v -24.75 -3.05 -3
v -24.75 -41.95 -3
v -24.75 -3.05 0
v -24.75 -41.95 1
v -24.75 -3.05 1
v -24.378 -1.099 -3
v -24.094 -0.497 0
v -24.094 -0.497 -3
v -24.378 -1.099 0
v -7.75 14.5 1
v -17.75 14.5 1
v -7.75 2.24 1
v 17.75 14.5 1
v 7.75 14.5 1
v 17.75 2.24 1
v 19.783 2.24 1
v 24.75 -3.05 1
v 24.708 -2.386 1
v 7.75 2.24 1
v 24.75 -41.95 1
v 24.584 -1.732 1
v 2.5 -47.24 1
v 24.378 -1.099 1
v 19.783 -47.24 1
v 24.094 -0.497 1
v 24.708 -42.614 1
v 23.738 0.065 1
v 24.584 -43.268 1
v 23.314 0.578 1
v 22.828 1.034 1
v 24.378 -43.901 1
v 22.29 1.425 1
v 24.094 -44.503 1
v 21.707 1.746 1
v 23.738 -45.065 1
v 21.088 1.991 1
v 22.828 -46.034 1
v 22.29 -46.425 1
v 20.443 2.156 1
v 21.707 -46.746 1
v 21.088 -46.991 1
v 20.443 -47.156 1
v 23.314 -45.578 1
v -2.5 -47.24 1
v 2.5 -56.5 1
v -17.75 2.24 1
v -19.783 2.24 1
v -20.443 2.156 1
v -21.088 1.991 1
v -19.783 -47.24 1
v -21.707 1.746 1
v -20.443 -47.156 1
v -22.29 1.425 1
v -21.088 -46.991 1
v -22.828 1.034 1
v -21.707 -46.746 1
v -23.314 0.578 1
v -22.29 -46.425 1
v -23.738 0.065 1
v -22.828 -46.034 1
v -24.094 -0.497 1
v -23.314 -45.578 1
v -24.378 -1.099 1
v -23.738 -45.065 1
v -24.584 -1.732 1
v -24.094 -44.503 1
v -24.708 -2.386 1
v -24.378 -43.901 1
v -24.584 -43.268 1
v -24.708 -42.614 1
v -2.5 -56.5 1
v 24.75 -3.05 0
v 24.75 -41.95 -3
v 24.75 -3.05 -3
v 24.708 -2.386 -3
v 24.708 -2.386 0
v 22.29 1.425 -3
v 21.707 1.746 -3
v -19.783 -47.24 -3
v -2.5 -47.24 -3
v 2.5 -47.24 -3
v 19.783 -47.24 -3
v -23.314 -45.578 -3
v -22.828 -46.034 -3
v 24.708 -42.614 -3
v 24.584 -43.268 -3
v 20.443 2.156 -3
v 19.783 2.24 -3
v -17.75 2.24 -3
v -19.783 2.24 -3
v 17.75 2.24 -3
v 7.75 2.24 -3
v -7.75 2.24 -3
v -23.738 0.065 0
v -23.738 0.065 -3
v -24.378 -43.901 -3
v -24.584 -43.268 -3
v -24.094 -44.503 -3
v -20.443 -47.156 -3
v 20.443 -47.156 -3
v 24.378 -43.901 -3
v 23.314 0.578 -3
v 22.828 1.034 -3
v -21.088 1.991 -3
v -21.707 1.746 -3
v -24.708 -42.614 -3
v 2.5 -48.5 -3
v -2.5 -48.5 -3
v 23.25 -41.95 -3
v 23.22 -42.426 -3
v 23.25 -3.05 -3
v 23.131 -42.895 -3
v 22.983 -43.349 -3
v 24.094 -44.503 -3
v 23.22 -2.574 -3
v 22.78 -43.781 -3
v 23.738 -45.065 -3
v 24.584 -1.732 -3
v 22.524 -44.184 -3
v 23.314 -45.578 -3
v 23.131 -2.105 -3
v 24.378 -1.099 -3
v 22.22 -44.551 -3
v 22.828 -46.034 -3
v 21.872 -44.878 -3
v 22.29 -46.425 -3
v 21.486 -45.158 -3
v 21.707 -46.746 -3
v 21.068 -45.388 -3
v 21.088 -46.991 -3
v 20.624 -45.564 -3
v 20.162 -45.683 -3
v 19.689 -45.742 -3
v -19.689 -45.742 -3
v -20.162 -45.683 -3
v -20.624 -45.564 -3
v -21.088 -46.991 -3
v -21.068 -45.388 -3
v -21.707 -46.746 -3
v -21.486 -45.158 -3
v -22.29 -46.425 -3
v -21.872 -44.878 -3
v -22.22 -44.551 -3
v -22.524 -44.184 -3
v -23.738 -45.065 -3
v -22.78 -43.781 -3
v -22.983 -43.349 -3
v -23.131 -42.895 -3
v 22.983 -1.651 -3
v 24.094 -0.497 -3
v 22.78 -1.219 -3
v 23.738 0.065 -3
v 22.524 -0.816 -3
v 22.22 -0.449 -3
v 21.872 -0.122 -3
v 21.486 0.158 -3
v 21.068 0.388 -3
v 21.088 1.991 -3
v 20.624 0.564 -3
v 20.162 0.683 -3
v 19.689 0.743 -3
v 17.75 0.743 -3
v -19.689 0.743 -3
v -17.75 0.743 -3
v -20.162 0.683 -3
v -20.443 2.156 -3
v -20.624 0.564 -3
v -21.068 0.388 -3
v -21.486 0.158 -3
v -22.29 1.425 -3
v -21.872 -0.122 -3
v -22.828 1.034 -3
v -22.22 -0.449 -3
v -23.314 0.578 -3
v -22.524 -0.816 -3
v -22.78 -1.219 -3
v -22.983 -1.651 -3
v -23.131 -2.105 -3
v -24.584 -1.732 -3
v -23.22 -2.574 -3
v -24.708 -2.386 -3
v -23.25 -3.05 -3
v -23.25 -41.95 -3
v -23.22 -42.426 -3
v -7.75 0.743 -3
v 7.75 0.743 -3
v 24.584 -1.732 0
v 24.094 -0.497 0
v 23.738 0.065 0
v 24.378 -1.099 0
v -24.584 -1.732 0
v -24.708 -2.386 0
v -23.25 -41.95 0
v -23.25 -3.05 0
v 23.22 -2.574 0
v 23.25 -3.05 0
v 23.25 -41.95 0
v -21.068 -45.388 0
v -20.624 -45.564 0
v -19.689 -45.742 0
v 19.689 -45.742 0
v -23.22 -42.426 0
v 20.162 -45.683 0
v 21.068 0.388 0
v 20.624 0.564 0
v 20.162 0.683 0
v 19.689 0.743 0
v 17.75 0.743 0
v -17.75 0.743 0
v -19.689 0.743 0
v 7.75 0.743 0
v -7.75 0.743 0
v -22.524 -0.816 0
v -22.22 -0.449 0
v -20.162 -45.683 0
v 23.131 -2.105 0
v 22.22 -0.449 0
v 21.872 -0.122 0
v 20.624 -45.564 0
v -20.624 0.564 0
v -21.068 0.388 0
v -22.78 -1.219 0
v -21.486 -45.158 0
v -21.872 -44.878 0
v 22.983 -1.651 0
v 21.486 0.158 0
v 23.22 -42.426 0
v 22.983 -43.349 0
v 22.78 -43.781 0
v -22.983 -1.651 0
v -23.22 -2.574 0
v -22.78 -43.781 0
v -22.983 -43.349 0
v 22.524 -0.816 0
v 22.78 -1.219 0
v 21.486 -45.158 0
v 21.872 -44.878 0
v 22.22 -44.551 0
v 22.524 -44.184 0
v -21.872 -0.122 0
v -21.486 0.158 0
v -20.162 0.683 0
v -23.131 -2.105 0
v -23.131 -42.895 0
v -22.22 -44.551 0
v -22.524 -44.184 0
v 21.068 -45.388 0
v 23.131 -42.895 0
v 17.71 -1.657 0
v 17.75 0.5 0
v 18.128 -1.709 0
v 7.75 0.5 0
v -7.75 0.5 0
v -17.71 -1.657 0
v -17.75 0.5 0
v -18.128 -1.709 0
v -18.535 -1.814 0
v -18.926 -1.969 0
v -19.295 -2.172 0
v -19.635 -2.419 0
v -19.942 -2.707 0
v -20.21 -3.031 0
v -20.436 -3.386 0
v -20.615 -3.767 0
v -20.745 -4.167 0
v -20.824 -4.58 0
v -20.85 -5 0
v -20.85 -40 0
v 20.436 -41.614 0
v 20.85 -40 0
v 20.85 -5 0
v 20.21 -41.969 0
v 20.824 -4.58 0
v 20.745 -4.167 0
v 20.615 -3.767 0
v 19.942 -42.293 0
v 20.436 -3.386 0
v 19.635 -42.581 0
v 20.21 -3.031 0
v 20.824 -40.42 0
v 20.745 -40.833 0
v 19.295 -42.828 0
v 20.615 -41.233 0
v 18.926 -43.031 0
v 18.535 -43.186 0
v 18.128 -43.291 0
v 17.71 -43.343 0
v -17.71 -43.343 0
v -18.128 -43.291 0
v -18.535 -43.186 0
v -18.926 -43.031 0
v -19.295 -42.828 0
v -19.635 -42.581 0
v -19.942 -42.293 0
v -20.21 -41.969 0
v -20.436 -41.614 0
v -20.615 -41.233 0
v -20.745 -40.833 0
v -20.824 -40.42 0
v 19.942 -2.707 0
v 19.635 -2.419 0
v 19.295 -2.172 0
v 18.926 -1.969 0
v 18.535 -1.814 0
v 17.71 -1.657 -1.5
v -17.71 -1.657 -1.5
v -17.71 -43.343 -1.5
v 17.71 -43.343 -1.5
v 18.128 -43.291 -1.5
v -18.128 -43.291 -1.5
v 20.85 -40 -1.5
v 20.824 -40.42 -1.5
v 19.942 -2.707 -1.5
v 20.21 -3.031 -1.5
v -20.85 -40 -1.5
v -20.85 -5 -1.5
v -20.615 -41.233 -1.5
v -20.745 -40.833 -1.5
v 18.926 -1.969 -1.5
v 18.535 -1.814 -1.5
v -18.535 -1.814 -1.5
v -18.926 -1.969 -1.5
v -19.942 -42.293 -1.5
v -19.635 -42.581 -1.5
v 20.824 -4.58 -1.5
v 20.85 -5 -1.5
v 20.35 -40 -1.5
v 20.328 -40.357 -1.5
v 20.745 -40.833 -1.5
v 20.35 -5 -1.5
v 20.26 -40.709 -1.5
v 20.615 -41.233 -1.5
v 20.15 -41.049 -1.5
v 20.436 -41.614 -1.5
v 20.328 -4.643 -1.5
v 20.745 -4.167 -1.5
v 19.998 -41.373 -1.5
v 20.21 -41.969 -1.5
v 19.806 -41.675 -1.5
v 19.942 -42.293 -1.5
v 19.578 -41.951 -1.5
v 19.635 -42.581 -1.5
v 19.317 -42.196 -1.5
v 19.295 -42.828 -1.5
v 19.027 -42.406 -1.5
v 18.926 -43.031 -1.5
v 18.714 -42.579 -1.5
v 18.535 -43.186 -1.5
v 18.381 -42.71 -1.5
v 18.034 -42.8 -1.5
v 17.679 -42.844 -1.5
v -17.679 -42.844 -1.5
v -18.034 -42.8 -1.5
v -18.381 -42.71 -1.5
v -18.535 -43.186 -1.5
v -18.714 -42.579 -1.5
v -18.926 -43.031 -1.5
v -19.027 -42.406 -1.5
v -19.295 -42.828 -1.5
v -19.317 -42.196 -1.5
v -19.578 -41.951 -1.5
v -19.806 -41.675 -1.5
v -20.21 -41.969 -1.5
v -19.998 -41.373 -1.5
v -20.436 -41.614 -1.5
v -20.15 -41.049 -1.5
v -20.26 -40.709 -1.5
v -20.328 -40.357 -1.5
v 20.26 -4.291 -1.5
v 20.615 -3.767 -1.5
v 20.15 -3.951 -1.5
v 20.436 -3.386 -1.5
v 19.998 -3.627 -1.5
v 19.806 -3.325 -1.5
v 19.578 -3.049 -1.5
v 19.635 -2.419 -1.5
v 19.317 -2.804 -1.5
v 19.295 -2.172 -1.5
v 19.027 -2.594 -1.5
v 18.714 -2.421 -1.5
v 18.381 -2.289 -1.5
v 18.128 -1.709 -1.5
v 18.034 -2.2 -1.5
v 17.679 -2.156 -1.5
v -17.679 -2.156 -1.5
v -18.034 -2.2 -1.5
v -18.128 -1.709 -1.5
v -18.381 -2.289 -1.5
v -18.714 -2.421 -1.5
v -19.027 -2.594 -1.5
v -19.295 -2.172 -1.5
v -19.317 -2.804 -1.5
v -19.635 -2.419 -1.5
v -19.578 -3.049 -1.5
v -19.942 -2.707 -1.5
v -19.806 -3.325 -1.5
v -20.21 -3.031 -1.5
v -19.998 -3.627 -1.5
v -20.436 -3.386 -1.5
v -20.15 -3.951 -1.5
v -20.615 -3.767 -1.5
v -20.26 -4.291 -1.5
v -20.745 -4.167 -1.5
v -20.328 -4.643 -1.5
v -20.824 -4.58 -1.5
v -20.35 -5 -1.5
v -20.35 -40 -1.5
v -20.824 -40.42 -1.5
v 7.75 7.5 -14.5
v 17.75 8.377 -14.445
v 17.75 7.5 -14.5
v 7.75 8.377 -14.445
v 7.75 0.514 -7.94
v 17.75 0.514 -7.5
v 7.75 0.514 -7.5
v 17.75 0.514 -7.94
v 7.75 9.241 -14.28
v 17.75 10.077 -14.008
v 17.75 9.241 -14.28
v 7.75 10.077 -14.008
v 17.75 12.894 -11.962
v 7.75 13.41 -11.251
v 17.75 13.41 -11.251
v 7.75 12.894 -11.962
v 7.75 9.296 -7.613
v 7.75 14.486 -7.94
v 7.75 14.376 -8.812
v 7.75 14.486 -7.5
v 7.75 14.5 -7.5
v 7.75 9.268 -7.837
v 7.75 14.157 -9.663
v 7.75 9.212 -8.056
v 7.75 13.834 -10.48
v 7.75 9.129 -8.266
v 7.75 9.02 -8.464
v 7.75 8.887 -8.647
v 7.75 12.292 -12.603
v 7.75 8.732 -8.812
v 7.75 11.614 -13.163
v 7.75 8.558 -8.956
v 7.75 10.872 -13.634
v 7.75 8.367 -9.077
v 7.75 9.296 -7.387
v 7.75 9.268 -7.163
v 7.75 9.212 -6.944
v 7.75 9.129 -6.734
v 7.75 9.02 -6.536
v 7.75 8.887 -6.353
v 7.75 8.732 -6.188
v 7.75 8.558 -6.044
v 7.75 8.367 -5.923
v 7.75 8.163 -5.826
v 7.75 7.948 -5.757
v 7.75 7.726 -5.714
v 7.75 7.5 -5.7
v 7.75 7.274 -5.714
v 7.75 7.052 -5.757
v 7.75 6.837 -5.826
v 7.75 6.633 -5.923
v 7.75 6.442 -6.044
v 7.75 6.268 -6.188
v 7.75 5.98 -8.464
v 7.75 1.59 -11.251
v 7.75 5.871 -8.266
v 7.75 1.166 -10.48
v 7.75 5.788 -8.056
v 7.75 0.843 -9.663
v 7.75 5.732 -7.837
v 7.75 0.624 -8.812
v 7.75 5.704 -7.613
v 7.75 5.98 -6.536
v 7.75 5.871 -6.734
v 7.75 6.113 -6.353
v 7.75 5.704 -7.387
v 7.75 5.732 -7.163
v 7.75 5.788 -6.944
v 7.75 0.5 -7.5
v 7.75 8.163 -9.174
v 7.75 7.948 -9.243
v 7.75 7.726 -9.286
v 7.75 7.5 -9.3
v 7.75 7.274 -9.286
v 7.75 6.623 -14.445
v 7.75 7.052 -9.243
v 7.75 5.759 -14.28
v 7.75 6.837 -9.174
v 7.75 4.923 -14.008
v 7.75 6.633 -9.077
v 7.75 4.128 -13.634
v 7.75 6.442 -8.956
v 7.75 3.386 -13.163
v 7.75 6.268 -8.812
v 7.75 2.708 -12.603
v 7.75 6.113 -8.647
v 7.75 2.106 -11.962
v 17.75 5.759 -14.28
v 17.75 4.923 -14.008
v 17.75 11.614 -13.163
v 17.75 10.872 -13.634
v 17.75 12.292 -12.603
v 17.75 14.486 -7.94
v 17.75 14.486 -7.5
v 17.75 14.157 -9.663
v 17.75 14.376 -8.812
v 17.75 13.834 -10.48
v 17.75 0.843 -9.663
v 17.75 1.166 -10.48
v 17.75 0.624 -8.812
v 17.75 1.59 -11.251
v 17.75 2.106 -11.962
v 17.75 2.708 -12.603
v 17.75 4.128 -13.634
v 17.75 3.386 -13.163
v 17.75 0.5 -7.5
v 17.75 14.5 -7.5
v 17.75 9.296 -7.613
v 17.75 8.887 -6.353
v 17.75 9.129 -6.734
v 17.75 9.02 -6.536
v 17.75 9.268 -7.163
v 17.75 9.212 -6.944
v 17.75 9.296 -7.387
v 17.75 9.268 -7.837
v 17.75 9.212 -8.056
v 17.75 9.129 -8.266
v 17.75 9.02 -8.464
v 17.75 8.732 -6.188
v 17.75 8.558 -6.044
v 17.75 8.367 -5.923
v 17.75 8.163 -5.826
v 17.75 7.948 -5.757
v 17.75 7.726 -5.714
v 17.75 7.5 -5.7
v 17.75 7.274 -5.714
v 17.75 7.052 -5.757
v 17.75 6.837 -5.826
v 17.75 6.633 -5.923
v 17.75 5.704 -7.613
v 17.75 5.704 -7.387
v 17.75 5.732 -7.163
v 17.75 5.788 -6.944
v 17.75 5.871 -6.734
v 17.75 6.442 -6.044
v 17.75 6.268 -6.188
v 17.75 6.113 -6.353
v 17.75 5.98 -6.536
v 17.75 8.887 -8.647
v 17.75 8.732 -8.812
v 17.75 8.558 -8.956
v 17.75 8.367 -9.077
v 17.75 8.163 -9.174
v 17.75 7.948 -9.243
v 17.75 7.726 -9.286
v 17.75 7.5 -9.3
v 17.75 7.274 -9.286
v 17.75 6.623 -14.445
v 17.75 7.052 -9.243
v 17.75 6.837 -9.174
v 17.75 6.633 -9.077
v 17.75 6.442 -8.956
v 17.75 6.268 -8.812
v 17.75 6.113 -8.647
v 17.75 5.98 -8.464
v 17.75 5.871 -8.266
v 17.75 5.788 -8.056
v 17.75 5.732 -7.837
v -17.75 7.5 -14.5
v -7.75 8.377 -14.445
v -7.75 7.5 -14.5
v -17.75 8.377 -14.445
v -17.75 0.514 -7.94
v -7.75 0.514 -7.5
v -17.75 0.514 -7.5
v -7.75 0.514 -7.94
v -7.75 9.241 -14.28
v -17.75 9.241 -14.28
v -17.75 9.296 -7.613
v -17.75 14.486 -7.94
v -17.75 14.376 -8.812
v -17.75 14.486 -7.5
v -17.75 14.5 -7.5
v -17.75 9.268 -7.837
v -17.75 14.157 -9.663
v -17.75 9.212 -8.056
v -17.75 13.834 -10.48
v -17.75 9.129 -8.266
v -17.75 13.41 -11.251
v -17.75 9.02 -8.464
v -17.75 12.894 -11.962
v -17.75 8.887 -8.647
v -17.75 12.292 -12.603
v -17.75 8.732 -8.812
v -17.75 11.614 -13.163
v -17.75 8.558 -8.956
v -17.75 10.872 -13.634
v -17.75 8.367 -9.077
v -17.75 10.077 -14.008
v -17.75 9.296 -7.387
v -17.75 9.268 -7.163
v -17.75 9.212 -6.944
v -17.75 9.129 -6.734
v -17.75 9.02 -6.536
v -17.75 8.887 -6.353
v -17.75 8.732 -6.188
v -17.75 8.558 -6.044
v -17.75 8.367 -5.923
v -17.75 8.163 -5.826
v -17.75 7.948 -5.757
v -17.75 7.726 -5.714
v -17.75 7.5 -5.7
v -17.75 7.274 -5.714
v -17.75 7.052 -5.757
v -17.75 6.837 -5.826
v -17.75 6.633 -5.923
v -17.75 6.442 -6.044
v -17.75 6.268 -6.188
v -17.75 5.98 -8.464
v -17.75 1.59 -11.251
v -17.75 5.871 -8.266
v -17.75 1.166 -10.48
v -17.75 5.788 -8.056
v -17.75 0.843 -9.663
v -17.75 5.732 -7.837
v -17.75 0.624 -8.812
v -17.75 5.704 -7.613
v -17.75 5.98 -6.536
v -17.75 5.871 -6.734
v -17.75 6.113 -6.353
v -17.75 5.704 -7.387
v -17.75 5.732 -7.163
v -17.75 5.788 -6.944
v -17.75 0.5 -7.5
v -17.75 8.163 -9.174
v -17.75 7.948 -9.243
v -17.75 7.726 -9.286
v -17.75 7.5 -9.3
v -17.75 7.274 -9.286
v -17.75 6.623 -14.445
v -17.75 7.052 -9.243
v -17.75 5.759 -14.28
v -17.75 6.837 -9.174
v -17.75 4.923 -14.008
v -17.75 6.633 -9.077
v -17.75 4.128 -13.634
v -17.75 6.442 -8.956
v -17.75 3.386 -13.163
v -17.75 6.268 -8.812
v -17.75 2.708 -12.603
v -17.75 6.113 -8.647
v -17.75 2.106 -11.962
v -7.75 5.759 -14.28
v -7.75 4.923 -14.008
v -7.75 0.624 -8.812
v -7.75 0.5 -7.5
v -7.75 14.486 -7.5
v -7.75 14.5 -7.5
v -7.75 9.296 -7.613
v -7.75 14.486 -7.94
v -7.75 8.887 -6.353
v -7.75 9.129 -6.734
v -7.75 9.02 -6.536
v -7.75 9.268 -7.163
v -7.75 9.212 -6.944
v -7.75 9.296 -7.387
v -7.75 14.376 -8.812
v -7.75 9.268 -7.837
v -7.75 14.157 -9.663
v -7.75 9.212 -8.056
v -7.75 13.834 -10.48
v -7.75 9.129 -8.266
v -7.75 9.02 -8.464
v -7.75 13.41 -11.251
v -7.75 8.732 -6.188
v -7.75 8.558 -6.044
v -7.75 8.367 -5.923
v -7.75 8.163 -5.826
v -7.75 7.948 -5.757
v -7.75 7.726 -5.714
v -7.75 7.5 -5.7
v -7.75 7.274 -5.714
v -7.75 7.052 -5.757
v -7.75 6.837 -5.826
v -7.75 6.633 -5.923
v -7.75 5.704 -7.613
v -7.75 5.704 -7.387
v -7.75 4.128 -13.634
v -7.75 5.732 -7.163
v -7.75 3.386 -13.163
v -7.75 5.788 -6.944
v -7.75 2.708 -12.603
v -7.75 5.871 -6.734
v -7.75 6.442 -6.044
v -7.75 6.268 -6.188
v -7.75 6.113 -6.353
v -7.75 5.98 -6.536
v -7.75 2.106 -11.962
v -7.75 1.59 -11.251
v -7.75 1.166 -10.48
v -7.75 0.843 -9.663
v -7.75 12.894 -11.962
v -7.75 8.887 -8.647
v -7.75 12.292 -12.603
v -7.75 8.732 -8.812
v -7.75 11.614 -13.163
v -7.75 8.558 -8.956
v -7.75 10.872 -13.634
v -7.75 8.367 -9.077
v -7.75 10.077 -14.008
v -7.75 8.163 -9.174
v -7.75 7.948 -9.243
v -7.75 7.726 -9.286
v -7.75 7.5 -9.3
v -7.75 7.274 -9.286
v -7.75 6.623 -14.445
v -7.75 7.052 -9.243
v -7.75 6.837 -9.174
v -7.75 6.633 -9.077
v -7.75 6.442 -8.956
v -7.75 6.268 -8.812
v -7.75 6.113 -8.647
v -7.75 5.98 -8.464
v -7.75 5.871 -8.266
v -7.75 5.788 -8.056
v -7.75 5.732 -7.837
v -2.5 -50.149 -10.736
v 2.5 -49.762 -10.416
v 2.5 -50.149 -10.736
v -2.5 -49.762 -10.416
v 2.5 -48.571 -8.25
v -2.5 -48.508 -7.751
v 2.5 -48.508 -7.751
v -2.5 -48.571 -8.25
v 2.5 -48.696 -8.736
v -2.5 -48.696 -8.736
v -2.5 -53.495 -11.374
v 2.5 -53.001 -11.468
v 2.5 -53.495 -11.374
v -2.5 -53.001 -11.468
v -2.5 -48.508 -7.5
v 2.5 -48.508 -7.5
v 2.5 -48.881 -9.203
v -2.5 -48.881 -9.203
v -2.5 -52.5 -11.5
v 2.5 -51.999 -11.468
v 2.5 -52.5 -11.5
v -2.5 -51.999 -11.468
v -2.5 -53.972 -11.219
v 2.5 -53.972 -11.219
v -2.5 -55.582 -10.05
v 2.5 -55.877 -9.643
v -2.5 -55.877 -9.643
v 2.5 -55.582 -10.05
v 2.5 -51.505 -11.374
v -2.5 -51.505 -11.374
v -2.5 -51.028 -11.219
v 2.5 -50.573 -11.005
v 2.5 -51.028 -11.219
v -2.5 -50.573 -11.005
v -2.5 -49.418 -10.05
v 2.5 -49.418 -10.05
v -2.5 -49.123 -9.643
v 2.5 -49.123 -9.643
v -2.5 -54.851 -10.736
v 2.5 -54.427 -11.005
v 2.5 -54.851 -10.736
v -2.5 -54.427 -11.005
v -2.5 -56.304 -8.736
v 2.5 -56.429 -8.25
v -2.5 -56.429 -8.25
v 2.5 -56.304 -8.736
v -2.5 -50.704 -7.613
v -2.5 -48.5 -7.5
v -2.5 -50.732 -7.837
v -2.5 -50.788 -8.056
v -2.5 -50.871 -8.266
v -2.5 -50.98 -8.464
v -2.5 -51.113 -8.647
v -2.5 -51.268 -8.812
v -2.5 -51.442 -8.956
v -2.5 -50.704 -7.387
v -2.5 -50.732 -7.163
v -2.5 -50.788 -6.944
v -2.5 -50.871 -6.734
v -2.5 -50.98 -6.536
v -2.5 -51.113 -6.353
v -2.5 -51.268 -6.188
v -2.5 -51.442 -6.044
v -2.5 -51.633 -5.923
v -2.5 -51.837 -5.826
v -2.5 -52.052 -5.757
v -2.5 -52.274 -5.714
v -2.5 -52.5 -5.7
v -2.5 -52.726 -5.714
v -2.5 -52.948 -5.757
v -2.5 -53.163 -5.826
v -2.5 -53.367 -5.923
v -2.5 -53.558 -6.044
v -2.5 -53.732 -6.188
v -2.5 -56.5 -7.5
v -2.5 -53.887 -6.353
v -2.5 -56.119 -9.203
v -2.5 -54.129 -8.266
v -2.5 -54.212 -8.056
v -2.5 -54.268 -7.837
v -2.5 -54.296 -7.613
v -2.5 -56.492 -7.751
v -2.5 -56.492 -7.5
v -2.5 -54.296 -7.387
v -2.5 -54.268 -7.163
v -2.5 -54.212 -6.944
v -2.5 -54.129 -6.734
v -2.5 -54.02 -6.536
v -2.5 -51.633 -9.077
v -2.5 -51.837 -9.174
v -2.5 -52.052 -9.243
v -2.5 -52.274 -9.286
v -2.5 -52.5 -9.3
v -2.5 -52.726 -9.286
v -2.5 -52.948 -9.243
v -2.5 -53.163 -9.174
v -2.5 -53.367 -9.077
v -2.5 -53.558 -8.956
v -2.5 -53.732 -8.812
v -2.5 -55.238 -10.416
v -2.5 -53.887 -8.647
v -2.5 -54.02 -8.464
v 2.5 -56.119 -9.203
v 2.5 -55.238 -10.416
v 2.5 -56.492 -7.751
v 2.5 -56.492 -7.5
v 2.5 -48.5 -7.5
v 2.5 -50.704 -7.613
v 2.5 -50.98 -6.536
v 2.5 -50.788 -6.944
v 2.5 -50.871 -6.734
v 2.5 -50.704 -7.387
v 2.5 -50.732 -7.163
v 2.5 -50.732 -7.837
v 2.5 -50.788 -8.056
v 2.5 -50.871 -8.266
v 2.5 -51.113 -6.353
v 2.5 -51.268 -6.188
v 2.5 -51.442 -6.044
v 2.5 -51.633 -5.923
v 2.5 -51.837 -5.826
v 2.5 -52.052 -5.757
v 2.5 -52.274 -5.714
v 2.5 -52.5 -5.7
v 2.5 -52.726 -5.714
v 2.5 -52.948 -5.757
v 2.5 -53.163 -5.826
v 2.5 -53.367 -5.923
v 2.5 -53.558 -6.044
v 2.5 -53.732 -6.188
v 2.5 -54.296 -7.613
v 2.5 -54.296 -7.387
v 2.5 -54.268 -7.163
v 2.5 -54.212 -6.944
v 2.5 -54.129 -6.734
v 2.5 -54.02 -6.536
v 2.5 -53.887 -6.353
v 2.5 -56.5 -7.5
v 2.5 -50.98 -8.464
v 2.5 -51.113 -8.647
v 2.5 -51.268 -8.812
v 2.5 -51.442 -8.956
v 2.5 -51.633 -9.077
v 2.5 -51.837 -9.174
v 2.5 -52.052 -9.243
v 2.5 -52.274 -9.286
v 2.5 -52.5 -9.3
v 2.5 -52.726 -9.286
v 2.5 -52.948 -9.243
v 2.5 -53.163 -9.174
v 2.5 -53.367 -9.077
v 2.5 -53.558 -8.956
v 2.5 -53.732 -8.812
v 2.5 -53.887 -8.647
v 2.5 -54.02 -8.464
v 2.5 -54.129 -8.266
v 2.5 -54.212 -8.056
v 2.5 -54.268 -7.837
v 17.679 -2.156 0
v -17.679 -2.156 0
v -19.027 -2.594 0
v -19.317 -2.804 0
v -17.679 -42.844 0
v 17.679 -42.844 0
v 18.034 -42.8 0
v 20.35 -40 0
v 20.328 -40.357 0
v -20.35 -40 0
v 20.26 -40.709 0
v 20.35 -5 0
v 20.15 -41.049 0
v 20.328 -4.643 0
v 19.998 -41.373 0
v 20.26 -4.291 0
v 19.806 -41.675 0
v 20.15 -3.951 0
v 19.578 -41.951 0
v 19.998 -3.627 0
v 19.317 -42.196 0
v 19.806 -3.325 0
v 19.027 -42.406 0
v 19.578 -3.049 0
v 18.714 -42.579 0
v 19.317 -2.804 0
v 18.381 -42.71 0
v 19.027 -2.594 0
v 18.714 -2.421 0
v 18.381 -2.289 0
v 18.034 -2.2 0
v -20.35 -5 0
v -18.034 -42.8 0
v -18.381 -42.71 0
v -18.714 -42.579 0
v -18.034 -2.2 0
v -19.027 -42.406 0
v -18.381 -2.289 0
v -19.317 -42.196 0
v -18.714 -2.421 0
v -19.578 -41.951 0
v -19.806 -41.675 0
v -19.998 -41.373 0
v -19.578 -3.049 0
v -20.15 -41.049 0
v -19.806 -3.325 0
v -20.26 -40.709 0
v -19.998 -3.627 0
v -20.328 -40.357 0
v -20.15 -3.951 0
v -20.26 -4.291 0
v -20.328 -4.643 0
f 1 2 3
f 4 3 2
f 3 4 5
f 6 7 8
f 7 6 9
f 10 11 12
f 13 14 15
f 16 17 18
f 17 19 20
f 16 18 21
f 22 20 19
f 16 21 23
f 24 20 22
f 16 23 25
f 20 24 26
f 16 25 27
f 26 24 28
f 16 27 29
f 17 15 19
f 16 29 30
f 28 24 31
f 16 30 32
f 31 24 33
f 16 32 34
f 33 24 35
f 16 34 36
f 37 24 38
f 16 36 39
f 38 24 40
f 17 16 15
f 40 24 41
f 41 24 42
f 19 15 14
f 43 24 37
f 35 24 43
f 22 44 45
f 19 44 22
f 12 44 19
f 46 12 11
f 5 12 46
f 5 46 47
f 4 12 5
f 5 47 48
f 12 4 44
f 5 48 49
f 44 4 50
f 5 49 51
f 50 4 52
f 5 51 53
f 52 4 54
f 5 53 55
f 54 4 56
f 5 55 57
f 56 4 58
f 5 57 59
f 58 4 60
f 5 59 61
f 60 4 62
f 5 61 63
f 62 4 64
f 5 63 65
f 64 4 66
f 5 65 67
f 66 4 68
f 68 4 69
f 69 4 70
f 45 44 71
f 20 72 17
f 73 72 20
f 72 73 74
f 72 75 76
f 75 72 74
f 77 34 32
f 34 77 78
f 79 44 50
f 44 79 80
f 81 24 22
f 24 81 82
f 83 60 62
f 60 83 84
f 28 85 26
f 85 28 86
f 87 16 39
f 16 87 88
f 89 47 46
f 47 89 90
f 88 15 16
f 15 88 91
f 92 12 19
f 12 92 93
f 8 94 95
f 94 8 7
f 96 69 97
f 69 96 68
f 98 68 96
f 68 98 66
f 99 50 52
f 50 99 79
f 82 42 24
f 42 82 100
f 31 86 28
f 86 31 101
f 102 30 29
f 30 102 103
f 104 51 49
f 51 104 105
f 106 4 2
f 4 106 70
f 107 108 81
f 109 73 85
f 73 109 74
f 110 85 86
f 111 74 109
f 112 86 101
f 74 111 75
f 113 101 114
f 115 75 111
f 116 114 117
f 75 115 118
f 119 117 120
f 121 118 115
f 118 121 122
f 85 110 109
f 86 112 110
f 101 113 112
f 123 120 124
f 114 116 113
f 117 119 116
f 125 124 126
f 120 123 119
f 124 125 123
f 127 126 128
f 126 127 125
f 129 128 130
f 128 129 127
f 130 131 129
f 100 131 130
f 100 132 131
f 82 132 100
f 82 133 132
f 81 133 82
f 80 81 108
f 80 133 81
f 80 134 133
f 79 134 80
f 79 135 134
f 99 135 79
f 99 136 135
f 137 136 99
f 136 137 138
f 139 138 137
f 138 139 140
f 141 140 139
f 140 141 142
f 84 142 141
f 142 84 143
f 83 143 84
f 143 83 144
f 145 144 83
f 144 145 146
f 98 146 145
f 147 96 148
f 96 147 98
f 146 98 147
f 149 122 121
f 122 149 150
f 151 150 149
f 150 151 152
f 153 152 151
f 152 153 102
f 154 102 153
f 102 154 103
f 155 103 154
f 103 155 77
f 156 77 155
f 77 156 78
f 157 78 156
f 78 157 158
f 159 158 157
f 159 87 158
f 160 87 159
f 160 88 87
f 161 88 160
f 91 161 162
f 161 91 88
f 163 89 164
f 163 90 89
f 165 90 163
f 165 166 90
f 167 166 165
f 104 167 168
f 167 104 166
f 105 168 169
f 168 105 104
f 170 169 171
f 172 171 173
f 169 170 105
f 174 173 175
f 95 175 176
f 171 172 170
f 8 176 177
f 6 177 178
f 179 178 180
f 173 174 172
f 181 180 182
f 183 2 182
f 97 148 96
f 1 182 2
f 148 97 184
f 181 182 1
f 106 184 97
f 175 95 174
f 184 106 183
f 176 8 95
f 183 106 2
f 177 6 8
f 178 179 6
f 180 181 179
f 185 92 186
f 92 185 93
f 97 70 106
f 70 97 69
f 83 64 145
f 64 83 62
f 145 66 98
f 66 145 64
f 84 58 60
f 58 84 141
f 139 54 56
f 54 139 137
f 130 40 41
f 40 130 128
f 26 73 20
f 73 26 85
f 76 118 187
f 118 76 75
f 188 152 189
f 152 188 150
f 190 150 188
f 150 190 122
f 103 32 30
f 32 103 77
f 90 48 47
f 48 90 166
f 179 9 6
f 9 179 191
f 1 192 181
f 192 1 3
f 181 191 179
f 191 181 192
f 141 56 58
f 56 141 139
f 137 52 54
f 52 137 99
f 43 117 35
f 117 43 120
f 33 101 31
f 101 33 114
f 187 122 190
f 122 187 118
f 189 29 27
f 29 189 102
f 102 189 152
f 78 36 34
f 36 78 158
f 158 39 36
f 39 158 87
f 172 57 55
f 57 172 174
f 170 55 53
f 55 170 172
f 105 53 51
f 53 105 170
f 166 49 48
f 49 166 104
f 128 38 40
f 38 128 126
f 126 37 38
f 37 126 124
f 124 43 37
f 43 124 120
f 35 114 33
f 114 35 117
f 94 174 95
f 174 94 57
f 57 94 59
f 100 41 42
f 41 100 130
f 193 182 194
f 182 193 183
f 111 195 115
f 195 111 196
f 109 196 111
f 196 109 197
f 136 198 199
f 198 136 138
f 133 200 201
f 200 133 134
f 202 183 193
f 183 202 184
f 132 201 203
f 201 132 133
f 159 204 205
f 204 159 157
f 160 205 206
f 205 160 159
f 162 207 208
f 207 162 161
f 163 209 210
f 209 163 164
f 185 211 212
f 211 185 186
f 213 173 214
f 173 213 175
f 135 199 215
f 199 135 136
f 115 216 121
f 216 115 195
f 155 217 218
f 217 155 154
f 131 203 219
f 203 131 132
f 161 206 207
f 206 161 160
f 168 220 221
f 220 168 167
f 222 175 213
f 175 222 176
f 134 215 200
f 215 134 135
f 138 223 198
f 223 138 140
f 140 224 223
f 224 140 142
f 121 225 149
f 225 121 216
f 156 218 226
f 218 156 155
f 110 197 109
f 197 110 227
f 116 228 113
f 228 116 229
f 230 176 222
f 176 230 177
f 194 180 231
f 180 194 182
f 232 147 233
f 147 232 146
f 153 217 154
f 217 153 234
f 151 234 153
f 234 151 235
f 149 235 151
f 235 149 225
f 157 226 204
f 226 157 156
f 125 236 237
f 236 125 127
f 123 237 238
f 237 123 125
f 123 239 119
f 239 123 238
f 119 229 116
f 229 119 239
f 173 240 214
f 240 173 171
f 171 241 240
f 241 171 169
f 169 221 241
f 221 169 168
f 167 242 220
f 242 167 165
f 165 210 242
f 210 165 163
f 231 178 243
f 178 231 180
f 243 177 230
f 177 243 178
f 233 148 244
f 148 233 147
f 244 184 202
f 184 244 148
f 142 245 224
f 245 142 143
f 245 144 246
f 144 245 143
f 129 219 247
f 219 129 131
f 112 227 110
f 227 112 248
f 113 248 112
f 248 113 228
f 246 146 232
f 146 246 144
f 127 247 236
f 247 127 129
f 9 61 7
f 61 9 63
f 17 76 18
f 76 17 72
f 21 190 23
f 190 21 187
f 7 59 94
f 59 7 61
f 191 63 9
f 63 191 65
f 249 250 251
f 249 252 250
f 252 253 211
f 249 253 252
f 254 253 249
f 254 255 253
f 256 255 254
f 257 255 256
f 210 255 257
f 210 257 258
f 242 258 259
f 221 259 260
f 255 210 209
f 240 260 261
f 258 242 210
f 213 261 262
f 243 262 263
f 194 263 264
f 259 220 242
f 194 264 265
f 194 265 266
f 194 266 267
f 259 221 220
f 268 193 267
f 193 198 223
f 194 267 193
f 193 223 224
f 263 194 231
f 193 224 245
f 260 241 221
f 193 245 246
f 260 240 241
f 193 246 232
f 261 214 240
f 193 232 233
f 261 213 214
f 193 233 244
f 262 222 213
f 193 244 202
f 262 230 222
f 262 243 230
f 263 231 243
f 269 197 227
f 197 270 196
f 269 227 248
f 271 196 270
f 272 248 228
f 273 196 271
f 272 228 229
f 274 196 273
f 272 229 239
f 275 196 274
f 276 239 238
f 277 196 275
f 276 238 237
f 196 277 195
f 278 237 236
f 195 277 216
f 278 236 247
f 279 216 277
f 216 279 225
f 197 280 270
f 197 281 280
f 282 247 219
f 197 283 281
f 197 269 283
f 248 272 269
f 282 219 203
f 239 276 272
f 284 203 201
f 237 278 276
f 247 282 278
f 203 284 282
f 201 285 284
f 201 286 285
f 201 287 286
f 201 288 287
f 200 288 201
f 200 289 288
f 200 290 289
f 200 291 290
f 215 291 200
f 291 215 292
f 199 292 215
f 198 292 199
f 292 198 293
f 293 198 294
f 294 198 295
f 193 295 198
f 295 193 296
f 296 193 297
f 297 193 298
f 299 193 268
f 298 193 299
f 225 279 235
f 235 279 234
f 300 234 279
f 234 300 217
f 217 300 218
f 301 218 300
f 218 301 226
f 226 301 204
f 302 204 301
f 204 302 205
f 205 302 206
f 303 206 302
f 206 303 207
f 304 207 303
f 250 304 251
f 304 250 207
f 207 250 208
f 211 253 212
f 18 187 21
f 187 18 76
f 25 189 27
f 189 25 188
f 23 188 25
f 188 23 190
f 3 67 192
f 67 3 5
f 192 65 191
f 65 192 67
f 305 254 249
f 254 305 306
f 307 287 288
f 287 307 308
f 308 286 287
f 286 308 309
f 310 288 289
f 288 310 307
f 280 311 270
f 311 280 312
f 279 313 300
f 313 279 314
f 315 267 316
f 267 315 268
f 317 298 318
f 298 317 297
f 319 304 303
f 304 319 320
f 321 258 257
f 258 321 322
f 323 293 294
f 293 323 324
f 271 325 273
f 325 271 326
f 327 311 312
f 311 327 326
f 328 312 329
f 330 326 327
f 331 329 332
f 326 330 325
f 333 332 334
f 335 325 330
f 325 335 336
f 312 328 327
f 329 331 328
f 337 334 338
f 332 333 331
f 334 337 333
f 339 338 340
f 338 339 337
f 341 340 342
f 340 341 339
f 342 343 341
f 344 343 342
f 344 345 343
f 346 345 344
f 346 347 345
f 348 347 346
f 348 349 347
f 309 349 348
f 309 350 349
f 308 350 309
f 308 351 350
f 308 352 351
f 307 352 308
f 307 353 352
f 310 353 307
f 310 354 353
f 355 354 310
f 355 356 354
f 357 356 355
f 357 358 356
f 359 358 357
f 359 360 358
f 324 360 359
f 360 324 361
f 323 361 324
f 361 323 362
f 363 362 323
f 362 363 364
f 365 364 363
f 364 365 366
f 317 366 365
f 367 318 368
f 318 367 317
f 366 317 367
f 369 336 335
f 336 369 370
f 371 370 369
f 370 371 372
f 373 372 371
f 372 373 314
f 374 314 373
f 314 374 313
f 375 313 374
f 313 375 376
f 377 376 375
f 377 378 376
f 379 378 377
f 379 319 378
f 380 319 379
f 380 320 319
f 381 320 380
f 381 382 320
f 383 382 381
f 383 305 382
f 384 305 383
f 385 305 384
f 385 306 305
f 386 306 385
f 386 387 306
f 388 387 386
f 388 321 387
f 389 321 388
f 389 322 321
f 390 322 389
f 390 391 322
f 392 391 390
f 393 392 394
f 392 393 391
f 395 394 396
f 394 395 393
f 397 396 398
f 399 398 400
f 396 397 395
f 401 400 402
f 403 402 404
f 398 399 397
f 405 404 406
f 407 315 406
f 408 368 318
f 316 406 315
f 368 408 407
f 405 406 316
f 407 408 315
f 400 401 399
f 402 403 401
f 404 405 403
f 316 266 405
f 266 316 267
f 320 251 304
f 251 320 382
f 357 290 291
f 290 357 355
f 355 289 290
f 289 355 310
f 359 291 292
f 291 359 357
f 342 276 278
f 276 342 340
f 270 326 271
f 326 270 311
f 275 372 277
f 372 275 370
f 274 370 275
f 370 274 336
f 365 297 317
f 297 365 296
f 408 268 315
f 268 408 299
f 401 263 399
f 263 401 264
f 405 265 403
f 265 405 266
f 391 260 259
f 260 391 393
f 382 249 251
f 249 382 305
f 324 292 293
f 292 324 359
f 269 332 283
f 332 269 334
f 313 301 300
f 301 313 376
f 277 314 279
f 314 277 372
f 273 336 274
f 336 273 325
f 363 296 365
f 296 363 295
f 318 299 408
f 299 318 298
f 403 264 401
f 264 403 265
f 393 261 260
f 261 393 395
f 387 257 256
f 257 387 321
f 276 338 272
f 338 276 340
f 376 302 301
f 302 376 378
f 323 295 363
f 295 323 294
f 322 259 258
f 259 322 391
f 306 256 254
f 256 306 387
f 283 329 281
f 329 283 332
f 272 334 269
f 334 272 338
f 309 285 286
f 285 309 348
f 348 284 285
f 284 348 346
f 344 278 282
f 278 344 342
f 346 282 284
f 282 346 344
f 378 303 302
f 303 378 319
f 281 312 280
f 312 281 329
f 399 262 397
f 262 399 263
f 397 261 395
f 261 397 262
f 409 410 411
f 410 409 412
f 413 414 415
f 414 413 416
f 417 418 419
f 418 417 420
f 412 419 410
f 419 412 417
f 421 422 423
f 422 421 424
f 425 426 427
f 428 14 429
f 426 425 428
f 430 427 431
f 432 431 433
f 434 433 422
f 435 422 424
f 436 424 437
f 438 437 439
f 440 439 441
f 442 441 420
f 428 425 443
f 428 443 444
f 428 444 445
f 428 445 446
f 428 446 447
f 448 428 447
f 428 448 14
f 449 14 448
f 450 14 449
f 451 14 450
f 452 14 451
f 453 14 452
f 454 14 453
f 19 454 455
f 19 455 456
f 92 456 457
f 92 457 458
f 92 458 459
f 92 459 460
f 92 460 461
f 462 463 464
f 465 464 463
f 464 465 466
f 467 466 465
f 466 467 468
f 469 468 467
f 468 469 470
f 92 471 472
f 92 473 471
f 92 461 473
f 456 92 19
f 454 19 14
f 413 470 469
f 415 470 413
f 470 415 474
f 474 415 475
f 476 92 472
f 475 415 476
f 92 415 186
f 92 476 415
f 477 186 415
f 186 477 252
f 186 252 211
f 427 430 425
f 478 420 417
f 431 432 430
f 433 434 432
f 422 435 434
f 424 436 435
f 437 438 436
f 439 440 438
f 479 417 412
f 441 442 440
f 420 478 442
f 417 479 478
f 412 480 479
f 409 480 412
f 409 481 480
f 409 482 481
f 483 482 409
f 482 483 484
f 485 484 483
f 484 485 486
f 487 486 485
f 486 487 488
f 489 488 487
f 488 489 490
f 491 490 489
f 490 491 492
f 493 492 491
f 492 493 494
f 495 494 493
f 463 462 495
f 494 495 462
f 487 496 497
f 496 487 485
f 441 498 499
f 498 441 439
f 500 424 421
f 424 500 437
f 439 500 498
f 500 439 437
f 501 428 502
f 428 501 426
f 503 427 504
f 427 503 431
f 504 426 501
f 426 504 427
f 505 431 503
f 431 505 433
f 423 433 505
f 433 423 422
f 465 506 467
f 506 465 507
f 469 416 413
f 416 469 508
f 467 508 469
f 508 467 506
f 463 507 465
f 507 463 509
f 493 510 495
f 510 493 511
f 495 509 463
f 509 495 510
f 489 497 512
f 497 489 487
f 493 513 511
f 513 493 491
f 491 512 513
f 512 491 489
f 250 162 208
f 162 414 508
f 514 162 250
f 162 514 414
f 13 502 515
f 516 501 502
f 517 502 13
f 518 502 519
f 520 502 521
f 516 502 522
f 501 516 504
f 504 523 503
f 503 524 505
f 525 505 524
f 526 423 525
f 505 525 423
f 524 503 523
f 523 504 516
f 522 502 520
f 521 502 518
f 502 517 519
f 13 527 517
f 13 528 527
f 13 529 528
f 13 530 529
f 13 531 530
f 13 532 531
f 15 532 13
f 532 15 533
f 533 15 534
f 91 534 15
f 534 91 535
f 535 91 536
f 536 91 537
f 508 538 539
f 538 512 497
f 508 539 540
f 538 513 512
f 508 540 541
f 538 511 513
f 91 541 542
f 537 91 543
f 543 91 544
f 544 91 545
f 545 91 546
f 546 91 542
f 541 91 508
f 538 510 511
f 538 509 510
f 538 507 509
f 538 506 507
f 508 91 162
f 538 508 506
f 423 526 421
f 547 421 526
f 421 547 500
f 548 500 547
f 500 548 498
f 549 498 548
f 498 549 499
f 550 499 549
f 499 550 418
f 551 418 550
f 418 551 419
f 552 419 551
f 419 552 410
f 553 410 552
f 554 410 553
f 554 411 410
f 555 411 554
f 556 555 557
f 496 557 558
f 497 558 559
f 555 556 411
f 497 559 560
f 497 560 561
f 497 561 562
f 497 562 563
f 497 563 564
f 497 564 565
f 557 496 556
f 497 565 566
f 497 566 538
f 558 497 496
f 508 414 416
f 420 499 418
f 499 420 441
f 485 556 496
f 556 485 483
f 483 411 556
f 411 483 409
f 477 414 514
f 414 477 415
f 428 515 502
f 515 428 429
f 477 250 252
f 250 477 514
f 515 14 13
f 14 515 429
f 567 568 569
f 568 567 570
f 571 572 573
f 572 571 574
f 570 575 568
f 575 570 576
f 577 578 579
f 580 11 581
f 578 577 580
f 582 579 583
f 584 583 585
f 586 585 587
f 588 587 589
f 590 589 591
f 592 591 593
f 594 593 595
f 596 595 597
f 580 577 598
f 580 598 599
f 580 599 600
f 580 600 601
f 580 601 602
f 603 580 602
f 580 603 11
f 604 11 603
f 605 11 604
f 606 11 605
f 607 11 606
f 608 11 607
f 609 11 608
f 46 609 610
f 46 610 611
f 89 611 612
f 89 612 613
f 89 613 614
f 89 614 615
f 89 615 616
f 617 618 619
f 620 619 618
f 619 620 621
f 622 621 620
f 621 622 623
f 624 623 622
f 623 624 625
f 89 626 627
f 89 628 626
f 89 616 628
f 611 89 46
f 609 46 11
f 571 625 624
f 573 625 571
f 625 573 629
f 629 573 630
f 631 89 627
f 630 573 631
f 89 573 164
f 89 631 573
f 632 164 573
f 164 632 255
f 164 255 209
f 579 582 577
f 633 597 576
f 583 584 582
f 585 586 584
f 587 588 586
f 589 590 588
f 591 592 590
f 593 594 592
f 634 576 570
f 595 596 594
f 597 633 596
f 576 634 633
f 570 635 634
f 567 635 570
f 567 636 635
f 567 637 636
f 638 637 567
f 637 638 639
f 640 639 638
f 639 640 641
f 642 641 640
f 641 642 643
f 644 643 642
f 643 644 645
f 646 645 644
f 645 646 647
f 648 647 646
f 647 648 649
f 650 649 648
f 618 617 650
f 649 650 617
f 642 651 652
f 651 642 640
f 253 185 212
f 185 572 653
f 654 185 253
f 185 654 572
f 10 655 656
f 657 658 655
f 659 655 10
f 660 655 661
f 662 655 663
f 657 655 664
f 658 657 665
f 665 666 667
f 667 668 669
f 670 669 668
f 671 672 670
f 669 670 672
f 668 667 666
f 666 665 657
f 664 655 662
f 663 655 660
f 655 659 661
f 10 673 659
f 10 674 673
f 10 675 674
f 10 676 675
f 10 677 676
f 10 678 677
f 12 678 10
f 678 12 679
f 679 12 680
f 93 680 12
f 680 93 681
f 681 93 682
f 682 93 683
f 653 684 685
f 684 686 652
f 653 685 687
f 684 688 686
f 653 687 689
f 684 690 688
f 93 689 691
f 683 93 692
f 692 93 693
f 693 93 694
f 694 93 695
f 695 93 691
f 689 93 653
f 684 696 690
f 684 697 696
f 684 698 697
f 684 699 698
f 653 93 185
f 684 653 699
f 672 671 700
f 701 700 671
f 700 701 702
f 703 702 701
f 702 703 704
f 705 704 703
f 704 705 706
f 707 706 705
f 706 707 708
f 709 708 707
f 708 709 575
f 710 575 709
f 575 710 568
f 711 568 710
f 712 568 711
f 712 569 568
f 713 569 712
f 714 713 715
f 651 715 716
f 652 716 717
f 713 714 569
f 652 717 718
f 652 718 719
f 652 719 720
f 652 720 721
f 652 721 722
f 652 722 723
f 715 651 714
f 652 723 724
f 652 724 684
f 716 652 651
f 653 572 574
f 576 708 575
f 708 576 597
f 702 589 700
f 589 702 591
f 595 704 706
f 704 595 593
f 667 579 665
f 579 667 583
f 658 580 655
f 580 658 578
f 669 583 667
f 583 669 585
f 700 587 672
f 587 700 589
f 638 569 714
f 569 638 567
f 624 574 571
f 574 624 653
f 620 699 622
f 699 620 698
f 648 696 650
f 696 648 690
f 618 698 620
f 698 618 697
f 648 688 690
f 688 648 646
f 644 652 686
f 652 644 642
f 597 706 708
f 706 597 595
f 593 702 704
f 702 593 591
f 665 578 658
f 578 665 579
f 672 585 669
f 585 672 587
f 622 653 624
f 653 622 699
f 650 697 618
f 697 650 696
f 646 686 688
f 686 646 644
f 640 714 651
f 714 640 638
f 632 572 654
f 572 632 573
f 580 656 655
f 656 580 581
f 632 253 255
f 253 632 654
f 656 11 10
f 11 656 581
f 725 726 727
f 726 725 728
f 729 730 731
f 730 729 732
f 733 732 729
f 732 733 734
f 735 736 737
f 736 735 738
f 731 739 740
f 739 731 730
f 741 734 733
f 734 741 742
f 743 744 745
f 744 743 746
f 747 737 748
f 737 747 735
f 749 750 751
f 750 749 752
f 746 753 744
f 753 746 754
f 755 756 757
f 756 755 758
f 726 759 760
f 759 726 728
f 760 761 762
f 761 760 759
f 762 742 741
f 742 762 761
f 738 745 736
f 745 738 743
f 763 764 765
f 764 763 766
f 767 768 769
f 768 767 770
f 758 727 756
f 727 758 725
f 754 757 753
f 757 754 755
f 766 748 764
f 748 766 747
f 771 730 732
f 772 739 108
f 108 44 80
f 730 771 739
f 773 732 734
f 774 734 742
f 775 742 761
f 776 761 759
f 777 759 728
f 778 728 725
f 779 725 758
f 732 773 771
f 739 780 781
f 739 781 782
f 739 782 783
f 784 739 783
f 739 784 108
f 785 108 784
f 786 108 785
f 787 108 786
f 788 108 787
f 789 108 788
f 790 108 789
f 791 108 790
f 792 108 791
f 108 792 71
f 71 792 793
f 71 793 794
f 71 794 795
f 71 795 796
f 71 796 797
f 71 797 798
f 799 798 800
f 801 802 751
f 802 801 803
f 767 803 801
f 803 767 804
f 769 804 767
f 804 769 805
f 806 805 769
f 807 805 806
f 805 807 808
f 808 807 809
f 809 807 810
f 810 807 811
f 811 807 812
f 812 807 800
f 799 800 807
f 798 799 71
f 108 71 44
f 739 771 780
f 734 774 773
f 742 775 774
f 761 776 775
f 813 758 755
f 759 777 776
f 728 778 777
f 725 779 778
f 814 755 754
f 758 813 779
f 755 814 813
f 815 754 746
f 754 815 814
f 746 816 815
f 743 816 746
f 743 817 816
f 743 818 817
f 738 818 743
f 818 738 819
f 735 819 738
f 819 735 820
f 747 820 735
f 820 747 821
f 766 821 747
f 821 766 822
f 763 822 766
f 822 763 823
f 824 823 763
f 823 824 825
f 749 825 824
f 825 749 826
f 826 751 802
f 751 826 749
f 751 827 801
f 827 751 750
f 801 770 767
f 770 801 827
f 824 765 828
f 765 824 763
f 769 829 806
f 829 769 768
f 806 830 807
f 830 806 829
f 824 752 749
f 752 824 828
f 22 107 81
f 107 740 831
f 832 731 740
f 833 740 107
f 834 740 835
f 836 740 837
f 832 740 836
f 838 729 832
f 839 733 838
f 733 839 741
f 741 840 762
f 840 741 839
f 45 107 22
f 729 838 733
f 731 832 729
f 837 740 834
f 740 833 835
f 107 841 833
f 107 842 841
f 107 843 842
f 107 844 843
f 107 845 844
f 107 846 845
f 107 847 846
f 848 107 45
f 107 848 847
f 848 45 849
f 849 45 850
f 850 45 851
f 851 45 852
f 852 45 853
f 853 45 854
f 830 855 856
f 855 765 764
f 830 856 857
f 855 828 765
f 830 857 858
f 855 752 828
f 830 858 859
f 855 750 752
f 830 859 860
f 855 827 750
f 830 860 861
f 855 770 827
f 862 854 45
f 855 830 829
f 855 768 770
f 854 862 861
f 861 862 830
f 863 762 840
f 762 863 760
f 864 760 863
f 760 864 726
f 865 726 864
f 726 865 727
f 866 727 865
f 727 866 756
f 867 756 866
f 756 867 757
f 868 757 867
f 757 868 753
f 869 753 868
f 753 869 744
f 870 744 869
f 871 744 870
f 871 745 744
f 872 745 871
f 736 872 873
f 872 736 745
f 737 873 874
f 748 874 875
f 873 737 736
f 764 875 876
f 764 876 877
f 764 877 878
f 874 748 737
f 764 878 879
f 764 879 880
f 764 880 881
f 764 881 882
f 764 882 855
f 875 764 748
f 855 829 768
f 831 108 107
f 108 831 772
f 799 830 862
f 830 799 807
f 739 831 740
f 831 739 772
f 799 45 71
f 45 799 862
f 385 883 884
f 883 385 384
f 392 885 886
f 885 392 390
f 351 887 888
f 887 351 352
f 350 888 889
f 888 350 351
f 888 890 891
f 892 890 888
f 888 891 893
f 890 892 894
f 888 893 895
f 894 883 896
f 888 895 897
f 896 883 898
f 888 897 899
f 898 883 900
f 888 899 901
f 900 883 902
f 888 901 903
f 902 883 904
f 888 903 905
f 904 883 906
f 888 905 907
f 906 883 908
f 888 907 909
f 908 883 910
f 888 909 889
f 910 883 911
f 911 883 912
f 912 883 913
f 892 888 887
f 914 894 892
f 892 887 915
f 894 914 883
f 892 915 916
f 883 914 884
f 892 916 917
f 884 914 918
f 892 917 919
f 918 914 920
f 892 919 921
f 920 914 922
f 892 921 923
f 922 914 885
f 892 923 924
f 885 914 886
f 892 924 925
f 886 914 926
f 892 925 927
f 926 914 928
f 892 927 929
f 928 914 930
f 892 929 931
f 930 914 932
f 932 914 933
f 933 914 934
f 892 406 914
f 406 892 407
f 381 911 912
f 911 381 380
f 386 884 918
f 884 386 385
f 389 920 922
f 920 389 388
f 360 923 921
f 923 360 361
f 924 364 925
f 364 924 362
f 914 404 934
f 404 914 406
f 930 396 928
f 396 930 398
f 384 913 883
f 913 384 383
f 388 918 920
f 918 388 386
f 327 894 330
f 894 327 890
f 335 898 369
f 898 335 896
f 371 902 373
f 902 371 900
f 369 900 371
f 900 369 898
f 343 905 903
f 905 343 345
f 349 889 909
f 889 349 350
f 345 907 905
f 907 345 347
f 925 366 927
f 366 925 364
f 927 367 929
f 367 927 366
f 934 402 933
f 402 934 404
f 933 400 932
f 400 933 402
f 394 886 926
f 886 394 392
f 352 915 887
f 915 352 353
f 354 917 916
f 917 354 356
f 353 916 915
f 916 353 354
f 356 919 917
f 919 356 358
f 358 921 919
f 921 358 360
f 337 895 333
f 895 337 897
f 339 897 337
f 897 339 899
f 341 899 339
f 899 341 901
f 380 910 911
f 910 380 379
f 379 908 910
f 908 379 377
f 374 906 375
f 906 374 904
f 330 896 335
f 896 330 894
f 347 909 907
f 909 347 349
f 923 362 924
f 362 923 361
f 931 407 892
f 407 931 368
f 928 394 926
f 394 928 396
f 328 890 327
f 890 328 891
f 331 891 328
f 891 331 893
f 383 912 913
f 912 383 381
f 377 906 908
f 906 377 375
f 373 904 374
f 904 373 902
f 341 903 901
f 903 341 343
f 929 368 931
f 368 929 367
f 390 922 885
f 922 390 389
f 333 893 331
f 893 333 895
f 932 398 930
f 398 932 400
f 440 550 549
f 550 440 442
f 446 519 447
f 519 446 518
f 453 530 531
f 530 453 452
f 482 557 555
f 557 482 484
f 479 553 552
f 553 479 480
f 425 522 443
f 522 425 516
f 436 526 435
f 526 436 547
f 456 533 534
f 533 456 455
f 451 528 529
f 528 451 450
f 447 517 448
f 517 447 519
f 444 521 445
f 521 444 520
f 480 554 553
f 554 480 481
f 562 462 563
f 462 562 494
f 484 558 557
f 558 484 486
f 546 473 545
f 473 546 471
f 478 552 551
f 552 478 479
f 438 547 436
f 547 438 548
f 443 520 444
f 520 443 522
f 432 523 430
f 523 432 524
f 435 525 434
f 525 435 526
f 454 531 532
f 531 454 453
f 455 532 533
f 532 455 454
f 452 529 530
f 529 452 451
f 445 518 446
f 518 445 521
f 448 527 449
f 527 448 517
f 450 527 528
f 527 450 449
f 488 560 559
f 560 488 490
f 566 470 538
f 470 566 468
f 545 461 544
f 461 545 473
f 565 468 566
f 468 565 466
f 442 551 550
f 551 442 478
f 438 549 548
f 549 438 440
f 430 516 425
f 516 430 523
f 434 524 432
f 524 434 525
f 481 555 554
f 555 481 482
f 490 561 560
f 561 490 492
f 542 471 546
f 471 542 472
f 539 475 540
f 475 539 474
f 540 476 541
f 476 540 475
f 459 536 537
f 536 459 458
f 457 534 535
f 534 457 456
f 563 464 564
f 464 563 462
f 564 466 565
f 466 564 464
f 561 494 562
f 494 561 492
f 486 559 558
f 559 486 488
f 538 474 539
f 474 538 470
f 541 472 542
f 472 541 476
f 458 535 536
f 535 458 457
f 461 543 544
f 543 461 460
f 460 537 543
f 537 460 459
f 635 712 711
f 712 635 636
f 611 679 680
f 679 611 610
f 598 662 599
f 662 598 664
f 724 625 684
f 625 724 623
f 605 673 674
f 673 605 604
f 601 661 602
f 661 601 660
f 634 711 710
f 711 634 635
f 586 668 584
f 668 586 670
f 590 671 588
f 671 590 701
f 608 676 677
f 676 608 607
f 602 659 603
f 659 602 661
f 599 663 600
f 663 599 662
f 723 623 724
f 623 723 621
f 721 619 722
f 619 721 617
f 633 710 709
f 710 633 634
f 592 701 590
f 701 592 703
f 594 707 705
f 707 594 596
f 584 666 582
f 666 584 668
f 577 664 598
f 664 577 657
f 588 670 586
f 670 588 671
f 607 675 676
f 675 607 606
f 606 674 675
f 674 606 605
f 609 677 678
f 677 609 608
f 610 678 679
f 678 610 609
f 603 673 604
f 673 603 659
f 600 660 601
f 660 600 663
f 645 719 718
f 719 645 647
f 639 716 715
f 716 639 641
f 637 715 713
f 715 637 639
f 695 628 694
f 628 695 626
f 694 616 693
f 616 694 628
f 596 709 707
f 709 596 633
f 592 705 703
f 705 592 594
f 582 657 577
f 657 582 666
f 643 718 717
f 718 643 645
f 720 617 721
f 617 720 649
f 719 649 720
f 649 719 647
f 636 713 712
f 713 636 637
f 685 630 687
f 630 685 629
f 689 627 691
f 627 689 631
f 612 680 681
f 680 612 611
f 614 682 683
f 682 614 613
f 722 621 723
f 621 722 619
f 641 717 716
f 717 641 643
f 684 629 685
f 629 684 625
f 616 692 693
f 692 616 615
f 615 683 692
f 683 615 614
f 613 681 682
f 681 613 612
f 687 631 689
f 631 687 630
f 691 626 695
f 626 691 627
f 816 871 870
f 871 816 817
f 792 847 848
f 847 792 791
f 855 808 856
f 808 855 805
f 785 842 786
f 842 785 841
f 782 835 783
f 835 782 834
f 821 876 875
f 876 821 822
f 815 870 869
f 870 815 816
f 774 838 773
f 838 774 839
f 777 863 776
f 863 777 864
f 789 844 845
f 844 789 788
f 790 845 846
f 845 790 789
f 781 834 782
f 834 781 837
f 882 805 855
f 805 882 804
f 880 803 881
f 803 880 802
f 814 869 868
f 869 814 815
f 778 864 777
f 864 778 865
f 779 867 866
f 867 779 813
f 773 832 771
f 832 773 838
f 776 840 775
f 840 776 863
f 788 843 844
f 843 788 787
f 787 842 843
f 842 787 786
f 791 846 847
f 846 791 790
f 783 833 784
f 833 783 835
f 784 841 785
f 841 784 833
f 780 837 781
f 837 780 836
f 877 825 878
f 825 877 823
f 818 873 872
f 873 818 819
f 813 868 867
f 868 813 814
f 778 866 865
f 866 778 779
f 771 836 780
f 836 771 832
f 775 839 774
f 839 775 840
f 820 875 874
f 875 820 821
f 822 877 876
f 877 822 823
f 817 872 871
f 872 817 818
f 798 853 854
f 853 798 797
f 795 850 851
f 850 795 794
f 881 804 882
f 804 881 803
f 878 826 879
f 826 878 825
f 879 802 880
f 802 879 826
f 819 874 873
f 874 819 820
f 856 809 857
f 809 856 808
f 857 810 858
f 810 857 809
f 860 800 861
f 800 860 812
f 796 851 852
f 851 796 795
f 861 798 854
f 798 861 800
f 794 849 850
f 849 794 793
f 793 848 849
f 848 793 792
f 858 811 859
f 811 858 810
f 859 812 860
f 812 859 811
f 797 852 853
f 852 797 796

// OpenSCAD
$fn = 50;


difference() {
	union() {
		translate(v = [0, -22.5000000000, -3]) {
			rotate(a = [0, 0, 0]) {
				difference() {
					union() {
						hull() {
							translate(v = [-19.4500000000, 19.4500000000, 0]) {
								cylinder(h = 4, r = 5.3000000000);
							}
							translate(v = [19.4500000000, 19.4500000000, 0]) {
								cylinder(h = 4, r = 5.3000000000);
							}
							translate(v = [-19.4500000000, -19.4500000000, 0]) {
								cylinder(h = 4, r = 5.3000000000);
							}
							translate(v = [19.4500000000, -19.4500000000, 0]) {
								cylinder(h = 4, r = 5.3000000000);
							}
						}
					}
					union() {
						hull() {
							translate(v = [-19.4500000000, 19.4500000000, 0]) {
								cylinder(h = 4, r = 3.8000000000);
							}
							translate(v = [19.4500000000, 19.4500000000, 0]) {
								cylinder(h = 4, r = 3.8000000000);
							}
							translate(v = [-19.4500000000, -19.4500000000, 0]) {
								cylinder(h = 4, r = 3.8000000000);
							}
							translate(v = [19.4500000000, -19.4500000000, 0]) {
								cylinder(h = 4, r = 3.8000000000);
							}
						}
					}
				}
			}
		}
		translate(v = [0, -22.5000000000, 0]) {
			hull() {
				translate(v = [-19.4500000000, 19.4500000000, 0]) {
					cylinder(h = 1, r = 5.3000000000);
				}
				translate(v = [19.4500000000, 19.4500000000, 0]) {
					cylinder(h = 1, r = 5.3000000000);
				}
				translate(v = [-19.4500000000, -19.4500000000, 0]) {
					cylinder(h = 1, r = 5.3000000000);
				}
				translate(v = [19.4500000000, -19.4500000000, 0]) {
					cylinder(h = 1, r = 5.3000000000);
				}
			}
		}
		translate(v = [0.0000000000, -22.5000000000, -1.5000000000]) {
			hull() {
				translate(v = [-17.5000000000, 17.5000000000, 0]) {
					cylinder(h = 1.5000000000, r = 3.3500000000);
				}
				translate(v = [17.5000000000, 17.5000000000, 0]) {
					cylinder(h = 1.5000000000, r = 3.3500000000);
				}
				translate(v = [-17.5000000000, -17.5000000000, 0]) {
					cylinder(h = 1.5000000000, r = 3.3500000000);
				}
				translate(v = [17.5000000000, -17.5000000000, 0]) {
					cylinder(h = 1.5000000000, r = 3.3500000000);
				}
			}
		}
		translate(v = [7.7500000000, 7.5000000000, -7.5000000000]) {
			rotate(a = [0, 90, 0]) {
				cylinder(h = 10, r = 7.0000000000);
			}
		}
		translate(v = [7.7500000000, 0.5000000000, -7.5000000000]) {
			cube(size = [10, 14, 7.5000000000]);
		}
		translate(v = [7.7500000000, -15.0000000000, 0.0000000000]) {
			cube(size = [10, 29.5000000000, 1]);
		}
		translate(v = [-17.7500000000, 7.5000000000, -7.5000000000]) {
			rotate(a = [0, 90, 0]) {
				cylinder(h = 10, r = 7.0000000000);
			}
		}
		translate(v = [-17.7500000000, 0.5000000000, -7.5000000000]) {
			cube(size = [10, 14, 7.5000000000]);
		}
		translate(v = [-17.7500000000, -15.0000000000, 0.0000000000]) {
			cube(size = [10, 29.5000000000, 1]);
		}
		translate(v = [-2.5000000000, -52.5000000000, -7.5000000000]) {
			rotate(a = [0, 90, 0]) {
				cylinder(h = 5, r = 4.0000000000);
			}
		}
		translate(v = [-2.5000000000, -56.5000000000, -7.5000000000]) {
			cube(size = [5, 8, 7.5000000000]);
		}
		translate(v = [-2.5000000000, -56.5000000000, -3.0000000000]) {
			cube(size = [5, 10.2500000000, 4]);
		}
	}
	union() {
		translate(v = [0.0000000000, -22.5000000000, -1.5000000000]) {
			hull() {
				translate(v = [-17.5000000000, 17.5000000000, 0]) {
					cylinder(h = 1.5000000000, r = 2.8500000000);
				}
				translate(v = [17.5000000000, 17.5000000000, 0]) {
					cylinder(h = 1.5000000000, r = 2.8500000000);
				}
				translate(v = [-17.5000000000, -17.5000000000, 0]) {
					cylinder(h = 1.5000000000, r = 2.8500000000);
				}
				translate(v = [17.5000000000, -17.5000000000, 0]) {
					cylinder(h = 1.5000000000, r = 2.8500000000);
				}
			}
		}
		translate(v = [7.7500000000, 7.5000000000, -7.5000000000]) {
			rotate(a = [0, 90, 0]) {
				cylinder(h = 10, r = 1.8000000000);
			}
		}
		translate(v = [-17.7500000000, 7.5000000000, -7.5000000000]) {
			rotate(a = [0, 90, 0]) {
				cylinder(h = 10, r = 1.8000000000);
			}
		}
		translate(v = [-5.0000000000, -52.5000000000, -7.5000000000]) {
			rotate(a = [0, 90, 0]) {
				cylinder(h = 10, r = 1.8000000000);
			}
		}
	}
}
